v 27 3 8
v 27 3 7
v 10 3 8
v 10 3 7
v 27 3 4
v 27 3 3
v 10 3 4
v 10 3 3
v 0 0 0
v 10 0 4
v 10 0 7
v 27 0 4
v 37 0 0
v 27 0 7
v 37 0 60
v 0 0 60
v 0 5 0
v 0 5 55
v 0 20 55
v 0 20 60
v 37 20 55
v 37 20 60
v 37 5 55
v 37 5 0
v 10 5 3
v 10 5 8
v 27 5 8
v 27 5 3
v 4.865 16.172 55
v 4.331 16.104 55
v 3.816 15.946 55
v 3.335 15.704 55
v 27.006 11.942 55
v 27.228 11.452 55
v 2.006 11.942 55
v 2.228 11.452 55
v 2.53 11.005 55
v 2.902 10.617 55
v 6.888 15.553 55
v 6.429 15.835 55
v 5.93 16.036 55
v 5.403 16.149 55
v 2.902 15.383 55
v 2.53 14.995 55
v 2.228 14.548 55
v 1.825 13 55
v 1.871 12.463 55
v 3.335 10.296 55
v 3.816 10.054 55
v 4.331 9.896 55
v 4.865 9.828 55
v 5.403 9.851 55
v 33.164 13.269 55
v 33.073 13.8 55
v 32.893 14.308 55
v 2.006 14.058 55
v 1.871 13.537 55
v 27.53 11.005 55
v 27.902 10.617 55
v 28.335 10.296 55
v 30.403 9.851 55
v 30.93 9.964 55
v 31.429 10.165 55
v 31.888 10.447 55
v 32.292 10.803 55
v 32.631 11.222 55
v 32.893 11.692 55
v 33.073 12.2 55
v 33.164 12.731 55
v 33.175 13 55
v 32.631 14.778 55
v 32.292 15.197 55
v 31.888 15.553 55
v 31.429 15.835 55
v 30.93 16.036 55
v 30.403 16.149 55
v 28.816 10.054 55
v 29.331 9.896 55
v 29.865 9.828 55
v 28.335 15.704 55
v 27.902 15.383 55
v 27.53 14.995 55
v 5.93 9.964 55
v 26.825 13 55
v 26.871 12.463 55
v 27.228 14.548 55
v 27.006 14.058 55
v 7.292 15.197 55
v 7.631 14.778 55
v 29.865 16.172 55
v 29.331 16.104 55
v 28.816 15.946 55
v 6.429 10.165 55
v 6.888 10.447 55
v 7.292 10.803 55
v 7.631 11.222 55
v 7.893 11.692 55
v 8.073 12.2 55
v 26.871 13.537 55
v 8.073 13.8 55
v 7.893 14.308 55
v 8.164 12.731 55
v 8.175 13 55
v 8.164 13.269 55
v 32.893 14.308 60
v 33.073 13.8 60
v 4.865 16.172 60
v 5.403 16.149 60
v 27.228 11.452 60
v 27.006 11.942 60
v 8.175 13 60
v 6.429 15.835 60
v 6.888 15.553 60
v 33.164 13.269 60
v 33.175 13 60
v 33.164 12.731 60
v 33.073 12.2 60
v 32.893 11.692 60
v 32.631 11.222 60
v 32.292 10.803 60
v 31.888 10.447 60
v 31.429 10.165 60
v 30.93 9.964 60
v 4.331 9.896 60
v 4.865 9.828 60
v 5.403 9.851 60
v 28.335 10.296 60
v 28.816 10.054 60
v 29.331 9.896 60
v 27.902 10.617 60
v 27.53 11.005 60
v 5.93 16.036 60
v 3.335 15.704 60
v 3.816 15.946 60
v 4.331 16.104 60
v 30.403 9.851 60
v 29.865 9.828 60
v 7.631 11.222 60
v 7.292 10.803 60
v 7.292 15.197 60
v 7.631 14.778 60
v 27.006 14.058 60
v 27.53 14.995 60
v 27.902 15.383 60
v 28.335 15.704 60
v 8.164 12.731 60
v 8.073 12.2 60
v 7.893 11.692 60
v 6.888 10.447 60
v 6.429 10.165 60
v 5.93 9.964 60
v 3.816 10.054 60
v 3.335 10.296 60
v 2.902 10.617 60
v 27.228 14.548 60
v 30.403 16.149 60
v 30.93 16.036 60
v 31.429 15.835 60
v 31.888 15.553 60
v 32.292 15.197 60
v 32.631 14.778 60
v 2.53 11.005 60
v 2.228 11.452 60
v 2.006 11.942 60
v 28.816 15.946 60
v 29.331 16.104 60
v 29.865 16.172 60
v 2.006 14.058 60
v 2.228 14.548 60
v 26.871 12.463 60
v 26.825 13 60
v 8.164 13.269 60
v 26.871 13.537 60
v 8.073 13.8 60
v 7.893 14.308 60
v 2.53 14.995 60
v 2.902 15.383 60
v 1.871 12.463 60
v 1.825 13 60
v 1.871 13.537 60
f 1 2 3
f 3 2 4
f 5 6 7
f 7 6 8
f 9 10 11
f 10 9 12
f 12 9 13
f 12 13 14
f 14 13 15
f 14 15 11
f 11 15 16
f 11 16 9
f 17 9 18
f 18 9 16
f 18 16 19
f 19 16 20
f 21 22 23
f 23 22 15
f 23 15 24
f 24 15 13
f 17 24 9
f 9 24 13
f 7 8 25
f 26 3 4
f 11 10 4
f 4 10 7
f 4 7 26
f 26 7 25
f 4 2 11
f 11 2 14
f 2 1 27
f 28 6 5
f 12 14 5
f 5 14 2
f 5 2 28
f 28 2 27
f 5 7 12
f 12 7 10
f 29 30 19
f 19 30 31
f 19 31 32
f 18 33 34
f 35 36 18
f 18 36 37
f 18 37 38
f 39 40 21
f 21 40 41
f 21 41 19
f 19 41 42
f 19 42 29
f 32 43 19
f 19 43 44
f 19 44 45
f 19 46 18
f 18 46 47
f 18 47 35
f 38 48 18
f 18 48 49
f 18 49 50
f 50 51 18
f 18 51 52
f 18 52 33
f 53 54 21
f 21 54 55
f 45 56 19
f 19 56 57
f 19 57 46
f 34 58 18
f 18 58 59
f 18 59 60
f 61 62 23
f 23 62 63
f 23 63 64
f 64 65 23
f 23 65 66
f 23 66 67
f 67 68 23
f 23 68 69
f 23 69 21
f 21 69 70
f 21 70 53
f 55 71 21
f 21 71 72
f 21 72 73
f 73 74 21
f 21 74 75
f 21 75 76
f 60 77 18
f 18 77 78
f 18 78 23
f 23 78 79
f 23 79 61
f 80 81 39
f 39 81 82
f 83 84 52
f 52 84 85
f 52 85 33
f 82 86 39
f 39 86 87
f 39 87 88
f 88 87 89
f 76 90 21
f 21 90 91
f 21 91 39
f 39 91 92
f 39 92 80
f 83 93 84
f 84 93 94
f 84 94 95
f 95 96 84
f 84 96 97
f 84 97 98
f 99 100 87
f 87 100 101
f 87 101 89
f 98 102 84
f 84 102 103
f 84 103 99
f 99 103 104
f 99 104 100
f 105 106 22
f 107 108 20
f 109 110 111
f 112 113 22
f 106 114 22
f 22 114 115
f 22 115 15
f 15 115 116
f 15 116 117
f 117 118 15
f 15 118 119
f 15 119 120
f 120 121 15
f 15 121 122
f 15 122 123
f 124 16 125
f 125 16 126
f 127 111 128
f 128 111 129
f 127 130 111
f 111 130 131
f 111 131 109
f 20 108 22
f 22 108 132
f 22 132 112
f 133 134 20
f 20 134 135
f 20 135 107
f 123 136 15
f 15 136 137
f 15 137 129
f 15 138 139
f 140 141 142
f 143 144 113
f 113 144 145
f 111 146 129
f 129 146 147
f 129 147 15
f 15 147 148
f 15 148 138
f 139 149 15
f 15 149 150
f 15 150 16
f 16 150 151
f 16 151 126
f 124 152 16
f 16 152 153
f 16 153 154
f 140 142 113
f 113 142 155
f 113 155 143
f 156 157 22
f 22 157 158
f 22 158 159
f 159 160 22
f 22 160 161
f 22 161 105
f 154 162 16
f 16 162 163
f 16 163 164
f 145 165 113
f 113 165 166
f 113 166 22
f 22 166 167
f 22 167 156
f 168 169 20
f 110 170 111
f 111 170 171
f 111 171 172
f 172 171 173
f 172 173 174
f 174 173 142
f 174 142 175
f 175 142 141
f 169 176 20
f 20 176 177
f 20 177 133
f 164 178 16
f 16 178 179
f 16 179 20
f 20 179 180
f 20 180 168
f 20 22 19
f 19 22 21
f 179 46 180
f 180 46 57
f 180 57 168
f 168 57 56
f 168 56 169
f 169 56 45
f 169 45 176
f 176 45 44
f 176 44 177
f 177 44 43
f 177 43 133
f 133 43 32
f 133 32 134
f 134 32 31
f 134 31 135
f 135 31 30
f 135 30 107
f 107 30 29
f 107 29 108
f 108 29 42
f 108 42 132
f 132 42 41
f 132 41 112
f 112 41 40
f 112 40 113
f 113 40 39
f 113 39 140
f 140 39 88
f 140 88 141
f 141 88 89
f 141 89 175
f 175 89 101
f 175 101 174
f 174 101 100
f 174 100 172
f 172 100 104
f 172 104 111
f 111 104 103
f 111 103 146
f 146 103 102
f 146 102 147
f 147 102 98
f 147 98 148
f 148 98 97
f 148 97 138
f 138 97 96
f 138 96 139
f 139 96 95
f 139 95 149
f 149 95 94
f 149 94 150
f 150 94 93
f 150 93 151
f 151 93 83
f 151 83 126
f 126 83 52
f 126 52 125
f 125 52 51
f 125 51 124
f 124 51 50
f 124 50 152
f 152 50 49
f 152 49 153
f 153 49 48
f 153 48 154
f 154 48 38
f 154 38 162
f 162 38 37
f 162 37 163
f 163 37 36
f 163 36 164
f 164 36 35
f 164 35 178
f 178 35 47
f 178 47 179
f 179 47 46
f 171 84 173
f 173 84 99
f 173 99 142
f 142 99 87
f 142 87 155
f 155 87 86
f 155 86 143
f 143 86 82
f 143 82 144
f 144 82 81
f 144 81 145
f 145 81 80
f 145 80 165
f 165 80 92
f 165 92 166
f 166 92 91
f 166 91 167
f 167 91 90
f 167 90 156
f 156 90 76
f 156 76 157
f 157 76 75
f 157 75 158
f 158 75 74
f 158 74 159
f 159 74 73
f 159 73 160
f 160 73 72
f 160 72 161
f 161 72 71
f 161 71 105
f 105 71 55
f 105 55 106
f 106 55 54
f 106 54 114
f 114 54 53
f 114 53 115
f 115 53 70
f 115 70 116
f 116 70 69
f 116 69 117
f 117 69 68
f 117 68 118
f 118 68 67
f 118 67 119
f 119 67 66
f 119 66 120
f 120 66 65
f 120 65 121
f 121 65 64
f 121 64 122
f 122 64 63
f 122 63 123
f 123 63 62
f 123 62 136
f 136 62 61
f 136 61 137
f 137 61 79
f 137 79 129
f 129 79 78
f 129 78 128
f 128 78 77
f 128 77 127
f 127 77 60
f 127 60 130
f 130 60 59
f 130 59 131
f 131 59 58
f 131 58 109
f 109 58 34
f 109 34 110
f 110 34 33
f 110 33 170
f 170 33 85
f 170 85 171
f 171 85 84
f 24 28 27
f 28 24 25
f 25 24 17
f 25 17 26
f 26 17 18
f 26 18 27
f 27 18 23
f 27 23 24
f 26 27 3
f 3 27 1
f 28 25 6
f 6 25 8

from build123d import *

# Parameters (mm, degrees)
SKETCH1_W           = 37
SKETCH1_H           = 55
SKETCH1_W_2         = 17
SKETCH1_H_2         = 3
BOSS_EXTRUDE1_DEPTH = 3
SKETCH2_W           = 37
SKETCH2_H           = 20
SKETCH2_R           = 3.175
BOSS_EXTRUDE2_DEPTH = 5
SKETCH3_W           = 37
SKETCH3_H           = 55
SKETCH3_W_2         = 17
SKETCH3_H_2         = 5
BOSS_EXTRUDE3_DEPTH = 2


with BuildPart() as part:
    # Sketch1 → Boss-Extrude1 (new body)
    with BuildSketch(Plane(origin=(0, 0, 0), x_dir=(1, 0, 0), z_dir=(0, 1, 0))):
        with Locations((18.5, -27.5)):
            Rectangle(SKETCH1_W, SKETCH1_H)
        with Locations((18.5, -5.5)):
            Rectangle(SKETCH1_W_2, SKETCH1_H_2, mode=Mode.SUBTRACT)
    extrude(amount=BOSS_EXTRUDE1_DEPTH)

    # Sketch2 → Boss-Extrude2 (add)
    with BuildSketch(Plane.XY.offset(55)):
        with Locations((18.5, 10)):
            Rectangle(SKETCH2_W, SKETCH2_H)
        with Locations((5, 13)):
            Circle(SKETCH2_R, mode=Mode.SUBTRACT)
        with Locations((30, 13)):
            Circle(SKETCH2_R, mode=Mode.SUBTRACT)
    extrude(amount=BOSS_EXTRUDE2_DEPTH)

    # Sketch3 → Boss-Extrude3 (add)
    with BuildSketch(Plane(origin=(0, 3, 0), x_dir=(1, 0, 0), z_dir=(0, 1, 0))):
        with Locations((18.5, -27.5)):
            Rectangle(SKETCH3_W, SKETCH3_H)
        with Locations((18.5, -5.5)):
            Rectangle(SKETCH3_W_2, SKETCH3_H_2, mode=Mode.SUBTRACT)
    extrude(amount=BOSS_EXTRUDE3_DEPTH)


solid = part.part
